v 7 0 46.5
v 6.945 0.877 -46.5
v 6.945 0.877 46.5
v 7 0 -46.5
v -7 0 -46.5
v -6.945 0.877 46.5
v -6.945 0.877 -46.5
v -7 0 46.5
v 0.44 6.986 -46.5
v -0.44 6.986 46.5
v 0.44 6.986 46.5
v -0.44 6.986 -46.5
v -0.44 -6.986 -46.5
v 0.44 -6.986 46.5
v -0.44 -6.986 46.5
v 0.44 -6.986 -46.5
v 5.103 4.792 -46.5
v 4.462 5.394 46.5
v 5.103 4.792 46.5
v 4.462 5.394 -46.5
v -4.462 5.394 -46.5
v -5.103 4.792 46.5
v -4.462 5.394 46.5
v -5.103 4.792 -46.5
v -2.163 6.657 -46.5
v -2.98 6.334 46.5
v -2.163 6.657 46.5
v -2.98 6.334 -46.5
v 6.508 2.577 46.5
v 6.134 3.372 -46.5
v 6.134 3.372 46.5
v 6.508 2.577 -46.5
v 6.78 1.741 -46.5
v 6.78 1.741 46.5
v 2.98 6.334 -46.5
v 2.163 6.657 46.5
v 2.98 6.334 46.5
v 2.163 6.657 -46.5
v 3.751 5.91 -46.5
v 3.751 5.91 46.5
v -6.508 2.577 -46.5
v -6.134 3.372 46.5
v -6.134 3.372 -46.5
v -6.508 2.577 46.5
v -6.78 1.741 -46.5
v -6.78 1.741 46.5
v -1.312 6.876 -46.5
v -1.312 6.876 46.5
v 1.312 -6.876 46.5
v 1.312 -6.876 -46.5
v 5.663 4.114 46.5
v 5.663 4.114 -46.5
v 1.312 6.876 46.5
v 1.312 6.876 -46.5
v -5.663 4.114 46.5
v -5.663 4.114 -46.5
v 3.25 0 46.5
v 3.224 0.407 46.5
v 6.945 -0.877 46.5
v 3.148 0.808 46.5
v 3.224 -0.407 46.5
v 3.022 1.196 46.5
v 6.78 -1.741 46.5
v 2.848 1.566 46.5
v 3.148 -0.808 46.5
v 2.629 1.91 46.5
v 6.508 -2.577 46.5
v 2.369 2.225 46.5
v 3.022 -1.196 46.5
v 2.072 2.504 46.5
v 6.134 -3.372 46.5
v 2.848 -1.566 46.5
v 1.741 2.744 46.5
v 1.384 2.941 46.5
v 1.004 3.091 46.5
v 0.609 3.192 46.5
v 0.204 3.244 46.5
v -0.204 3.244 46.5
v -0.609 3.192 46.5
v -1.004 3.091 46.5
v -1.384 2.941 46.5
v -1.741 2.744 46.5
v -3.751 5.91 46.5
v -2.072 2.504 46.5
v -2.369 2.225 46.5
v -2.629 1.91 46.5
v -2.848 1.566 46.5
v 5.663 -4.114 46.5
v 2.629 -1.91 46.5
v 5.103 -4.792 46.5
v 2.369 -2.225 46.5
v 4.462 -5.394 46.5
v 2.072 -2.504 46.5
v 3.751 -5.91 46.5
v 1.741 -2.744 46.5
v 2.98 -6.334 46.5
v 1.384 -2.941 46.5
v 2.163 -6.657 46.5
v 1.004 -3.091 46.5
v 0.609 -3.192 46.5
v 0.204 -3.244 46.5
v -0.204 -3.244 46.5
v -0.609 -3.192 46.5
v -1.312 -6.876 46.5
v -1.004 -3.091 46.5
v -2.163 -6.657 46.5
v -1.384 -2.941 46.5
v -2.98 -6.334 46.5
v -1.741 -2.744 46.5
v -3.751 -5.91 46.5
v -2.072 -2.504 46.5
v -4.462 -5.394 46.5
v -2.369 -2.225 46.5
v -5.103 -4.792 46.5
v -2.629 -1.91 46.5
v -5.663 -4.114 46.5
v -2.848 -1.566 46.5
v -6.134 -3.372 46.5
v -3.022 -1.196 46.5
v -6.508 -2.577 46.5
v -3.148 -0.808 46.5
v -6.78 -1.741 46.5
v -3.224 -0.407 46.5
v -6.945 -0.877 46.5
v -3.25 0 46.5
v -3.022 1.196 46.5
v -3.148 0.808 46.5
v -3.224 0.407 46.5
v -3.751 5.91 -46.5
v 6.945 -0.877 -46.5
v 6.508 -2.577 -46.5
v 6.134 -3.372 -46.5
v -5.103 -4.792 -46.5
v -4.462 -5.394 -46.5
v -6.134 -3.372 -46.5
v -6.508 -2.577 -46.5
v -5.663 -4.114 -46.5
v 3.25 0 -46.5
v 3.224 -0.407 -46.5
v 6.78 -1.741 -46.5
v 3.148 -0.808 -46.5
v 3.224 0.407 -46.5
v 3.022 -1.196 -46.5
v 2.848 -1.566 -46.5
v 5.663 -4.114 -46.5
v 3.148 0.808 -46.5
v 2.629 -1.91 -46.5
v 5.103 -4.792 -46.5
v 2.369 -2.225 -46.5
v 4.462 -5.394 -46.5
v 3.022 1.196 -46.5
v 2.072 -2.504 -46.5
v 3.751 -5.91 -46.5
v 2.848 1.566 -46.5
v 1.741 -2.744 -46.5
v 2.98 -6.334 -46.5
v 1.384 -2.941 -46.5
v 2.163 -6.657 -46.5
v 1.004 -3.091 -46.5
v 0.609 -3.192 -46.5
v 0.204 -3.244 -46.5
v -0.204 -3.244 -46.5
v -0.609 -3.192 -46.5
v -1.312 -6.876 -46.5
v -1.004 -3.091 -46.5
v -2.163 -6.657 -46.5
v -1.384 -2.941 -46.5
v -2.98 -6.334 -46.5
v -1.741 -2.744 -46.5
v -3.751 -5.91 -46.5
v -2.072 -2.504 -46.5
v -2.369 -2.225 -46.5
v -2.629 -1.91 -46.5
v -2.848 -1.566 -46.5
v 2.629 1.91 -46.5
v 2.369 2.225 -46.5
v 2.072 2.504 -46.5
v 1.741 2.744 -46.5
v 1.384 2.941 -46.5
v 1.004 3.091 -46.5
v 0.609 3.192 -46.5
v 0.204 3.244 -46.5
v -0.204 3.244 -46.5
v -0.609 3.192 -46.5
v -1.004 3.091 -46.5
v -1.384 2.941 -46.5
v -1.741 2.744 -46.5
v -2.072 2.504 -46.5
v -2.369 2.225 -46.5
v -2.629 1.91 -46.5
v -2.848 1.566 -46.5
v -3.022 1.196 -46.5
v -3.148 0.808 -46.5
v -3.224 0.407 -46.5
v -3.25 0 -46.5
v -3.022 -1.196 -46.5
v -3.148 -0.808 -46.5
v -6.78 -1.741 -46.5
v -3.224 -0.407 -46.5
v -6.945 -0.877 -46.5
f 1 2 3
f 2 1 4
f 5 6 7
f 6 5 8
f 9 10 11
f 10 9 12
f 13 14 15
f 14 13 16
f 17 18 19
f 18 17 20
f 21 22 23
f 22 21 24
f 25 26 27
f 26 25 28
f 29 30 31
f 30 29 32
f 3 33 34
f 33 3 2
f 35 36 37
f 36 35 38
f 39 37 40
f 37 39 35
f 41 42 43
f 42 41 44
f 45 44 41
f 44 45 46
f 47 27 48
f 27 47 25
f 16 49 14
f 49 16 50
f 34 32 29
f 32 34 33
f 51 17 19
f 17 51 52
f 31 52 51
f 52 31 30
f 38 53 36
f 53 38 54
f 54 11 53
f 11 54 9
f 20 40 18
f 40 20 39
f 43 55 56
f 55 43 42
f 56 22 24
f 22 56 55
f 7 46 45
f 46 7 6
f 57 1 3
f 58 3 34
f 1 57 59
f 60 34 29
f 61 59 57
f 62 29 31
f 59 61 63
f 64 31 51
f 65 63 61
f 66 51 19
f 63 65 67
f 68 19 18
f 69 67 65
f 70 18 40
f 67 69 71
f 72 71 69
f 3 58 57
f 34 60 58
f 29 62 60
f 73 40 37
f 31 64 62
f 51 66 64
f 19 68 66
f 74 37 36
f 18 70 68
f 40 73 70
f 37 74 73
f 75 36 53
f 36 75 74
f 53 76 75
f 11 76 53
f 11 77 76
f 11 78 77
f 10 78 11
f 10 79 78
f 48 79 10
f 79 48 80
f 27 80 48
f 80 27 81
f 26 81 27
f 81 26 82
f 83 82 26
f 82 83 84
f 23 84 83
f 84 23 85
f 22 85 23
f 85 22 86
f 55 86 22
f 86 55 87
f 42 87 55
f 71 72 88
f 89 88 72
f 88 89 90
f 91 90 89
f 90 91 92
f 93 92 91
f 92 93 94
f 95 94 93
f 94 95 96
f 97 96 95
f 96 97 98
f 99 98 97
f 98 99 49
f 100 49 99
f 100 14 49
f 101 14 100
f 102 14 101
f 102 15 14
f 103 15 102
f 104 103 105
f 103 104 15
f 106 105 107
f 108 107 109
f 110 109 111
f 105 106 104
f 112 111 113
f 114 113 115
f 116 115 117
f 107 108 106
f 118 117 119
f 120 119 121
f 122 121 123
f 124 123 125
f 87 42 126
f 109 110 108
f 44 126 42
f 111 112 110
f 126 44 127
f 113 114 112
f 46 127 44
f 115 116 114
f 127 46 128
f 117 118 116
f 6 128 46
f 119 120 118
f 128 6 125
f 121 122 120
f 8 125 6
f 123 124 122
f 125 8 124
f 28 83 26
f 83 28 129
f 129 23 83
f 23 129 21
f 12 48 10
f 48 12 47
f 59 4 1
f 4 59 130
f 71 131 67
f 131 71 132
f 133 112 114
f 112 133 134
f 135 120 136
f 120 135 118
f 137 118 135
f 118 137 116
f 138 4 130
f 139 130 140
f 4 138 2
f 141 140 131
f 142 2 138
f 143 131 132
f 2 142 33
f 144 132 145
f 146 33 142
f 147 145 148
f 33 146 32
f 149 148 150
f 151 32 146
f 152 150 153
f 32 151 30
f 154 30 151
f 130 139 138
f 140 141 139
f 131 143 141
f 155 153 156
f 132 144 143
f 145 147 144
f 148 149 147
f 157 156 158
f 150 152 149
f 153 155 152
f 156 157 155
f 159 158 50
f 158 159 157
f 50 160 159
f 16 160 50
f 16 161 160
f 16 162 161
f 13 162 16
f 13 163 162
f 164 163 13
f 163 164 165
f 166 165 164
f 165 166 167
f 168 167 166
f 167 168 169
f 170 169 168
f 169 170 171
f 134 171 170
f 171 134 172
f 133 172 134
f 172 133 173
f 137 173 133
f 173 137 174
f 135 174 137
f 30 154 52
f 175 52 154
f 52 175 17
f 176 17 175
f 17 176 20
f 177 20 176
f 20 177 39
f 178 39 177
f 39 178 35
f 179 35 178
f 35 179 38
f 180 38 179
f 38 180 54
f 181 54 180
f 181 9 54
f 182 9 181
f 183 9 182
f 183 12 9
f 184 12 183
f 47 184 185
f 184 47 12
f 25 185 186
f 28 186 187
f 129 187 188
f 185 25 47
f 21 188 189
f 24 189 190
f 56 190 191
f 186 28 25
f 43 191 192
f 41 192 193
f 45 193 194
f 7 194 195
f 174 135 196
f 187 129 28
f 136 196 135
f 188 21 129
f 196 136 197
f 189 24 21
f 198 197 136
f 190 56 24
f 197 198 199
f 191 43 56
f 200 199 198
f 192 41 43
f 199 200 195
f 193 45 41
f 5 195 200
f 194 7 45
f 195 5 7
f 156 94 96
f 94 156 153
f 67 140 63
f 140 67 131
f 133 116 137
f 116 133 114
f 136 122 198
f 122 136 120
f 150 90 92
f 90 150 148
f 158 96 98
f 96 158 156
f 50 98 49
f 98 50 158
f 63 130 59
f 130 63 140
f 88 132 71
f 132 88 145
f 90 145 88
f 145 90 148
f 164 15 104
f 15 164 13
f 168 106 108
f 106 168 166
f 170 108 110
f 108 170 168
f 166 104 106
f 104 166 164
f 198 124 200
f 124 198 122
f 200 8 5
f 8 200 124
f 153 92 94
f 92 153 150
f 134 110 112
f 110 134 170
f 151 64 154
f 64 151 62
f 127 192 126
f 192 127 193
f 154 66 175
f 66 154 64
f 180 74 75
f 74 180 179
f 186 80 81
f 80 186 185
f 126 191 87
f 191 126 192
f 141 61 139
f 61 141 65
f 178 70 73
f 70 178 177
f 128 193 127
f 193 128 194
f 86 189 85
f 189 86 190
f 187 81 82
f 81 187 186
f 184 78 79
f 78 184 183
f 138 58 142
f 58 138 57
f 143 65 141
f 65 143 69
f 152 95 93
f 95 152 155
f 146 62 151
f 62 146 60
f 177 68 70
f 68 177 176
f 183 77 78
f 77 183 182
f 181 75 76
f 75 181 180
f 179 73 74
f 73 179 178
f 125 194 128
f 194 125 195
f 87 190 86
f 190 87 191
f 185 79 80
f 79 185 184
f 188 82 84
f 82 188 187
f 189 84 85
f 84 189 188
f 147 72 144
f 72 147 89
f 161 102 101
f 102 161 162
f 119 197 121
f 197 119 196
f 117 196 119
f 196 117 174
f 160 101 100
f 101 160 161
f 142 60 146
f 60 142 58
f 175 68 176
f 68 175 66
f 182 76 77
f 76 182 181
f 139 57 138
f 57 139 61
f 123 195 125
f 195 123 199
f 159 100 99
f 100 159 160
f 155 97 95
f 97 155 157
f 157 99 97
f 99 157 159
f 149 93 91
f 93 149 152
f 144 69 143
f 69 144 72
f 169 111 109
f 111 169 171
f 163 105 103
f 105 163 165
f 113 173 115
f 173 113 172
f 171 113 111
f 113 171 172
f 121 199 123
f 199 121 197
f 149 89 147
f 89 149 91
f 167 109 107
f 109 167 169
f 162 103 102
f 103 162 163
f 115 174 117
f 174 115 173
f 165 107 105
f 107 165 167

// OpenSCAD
$fn = 50;


difference() {
	union() {
		translate(v = [0, 0, -46.5000000000]) {
			cylinder(h = 93, r = 7.0000000000);
		}
	}
	union() {
		translate(v = [0, 0, -100.0000000000]) {
			cylinder(h = 200, r = 3.2500000000);
		}
	}
}
